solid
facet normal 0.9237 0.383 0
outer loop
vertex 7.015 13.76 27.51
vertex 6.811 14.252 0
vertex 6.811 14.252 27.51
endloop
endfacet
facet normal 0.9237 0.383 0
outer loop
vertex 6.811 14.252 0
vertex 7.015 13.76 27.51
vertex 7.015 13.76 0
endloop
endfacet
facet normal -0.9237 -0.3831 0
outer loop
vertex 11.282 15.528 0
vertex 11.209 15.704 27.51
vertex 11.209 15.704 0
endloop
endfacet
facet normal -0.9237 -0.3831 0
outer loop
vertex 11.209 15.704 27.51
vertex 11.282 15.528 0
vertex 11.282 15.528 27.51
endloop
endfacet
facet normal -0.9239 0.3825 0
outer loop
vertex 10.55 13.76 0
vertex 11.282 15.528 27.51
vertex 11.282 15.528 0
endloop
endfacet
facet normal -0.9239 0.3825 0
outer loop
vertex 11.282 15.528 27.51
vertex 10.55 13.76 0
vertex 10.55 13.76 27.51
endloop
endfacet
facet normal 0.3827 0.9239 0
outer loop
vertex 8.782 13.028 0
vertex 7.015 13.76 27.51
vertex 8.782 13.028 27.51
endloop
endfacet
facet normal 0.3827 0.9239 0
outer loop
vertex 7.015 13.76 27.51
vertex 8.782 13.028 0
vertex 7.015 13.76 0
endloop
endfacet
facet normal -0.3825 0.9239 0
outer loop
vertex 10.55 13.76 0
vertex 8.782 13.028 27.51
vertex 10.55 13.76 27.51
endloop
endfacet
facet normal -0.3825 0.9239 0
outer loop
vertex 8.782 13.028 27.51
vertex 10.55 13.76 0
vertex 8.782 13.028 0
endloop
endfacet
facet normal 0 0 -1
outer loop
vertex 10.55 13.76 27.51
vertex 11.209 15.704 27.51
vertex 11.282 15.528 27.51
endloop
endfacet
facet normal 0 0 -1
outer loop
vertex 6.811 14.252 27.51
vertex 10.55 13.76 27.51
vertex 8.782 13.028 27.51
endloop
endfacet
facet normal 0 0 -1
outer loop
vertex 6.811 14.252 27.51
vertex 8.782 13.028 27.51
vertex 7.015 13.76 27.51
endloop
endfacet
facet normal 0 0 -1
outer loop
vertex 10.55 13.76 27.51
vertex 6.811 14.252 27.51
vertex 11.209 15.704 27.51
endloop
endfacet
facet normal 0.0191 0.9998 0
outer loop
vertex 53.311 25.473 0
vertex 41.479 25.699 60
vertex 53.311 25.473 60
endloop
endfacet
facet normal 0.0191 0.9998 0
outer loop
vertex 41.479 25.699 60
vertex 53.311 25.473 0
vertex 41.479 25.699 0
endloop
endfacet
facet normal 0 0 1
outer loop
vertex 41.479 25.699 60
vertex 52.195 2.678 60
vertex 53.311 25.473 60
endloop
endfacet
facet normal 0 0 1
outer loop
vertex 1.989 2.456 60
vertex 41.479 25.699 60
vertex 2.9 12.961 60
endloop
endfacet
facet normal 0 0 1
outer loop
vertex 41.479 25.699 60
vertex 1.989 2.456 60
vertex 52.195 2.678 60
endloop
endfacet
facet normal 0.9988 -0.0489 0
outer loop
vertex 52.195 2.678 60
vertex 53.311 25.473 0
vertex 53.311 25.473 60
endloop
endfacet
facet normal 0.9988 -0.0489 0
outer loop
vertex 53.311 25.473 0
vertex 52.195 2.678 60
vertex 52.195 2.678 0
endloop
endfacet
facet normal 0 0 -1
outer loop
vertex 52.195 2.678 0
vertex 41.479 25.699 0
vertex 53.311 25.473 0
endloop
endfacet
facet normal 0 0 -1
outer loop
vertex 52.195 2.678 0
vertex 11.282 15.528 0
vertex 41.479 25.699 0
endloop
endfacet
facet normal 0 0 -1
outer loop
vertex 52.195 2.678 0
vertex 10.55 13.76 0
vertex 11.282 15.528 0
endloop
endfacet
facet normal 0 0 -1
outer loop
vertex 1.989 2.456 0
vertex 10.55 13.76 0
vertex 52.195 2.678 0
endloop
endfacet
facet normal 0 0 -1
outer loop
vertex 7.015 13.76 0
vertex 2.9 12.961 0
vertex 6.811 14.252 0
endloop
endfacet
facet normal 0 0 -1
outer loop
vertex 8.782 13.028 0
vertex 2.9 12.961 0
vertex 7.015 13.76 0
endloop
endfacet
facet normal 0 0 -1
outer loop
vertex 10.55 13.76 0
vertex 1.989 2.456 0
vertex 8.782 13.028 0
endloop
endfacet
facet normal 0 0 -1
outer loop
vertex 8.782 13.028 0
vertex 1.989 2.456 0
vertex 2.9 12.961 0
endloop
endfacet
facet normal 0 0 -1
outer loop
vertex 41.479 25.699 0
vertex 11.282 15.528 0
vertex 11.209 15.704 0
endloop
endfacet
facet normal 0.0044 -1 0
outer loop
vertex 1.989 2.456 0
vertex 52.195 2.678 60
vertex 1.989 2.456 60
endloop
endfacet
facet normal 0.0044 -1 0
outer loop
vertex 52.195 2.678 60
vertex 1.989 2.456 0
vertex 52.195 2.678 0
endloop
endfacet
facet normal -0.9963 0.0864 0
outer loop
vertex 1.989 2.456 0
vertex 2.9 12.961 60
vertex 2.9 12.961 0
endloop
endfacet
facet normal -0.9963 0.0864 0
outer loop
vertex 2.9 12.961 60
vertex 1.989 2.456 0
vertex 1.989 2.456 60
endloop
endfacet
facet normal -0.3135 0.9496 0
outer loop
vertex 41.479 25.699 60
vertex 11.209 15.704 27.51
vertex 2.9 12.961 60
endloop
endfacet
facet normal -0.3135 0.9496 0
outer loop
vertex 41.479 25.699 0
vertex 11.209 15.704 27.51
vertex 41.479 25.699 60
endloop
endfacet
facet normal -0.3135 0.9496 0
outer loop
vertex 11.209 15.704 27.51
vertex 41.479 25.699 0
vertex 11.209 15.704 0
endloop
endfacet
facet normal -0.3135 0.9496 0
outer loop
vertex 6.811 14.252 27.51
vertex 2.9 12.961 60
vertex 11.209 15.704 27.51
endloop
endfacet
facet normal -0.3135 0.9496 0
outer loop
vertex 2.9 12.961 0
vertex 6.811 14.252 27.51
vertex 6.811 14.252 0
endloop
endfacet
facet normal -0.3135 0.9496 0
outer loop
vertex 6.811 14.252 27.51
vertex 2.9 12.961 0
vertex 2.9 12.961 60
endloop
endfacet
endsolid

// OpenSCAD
/* doodle-meta {"version":1,"parameters":{"width":{"label":"Overall width","description":"Changes the body width","unit":"mm","feature":"body_width"},"depth":{"label":"Overall depth","description":"Changes the body depth","unit":"mm","feature":"body_depth"},"height":{"label":"Overall height","description":"Changes the body height","unit":"mm","feature":"body_height"},"hole_diameter":{"label":"Mounting hole diameter","description":"Diameter of the mounting holes","unit":"mm","feature":"mounting_holes"}},"features":{"body_width":{"kind":"dimension","axis":"x","label":"Overall width"},"body_depth":{"kind":"dimension","axis":"y","label":"Overall depth"},"body_height":{"kind":"dimension","axis":"z","label":"Overall height"},"mounting_holes":{"kind":"region","label":"Mounting holes","min":[{"parameter":"width","scale":0.15,"offset":0},{"parameter":"depth","scale":0.1,"offset":0},0],"max":[{"parameter":"width","scale":0.9,"offset":0},{"parameter":"depth","scale":0.9,"offset":0},{"parameter":"height","scale":1.0,"offset":0}]}}} */

// Parameters
width = 55.55;
depth = 60.0;
height = 27.5;
hole_diameter = 5.0;

// Derived parameters
eps = 0.01;
base_thickness = 5.0; // Inferred from right view height proportion

// Modules
module motor_holder_body() {
    // The body is defined by the front view (XZ plane) extruded along Y.
    // Front view polygon points (normalized u, v) -> (X, Z)
    // u maps to +X, v maps to -Z (so Z = (1-v)*height)
    
    // Points from view_3 (front):
    // [0.9597, 0.0737] -> X=0.9597*w, Z=(1-0.0737)*h
    // [0.7467, 0.0655] -> X=0.7467*w, Z=(1-0.0655)*h
    // [0.0522, 0.5287] -> X=0.0522*w, Z=(1-0.5287)*h
    // [0.0358, 0.9107] -> X=0.0358*w, Z=(1-0.9107)*h
    // [0.9396, 0.9026] -> X=0.9396*w, Z=(1-0.9026)*h
    
    // Note: The front view shows a profile that is roughly rectangular with an angled top.
    // The bottom is flat (Z=0). The left side is vertical. The right side is vertical.
    // The top slopes down from right to left? 
    // Let's re-evaluate the front view polygon.
    // It looks like a block with a slanted top surface.
    // The polygon vertices in view_3:
    // 1. (0.9597, 0.0737) -> Top Right
    // 2. (0.7467, 0.0655) -> Top Middle-Right
    // 3. (0.0522, 0.5287) -> Middle Left (Start of slope?)
    // 4. (0.0358, 0.9107) -> Bottom Left
    // 5. (0.9396, 0.9026) -> Bottom Right
    
    // This defines the X-Z profile. We extrude this along Y (depth).
    // However, the top view (view_1) shows an L-shape with a curved cutout.
    // The construction plan says "extrude L-shaped outline with curved cutout from top view".
    // But the front view defines the height profile.
    // Usually, for a motor holder, the base is flat and the top is angled.
    // Let's assume the base is a rectangular block of height 'base_thickness' and the top part is angled.
    // Or, simpler: The front view defines the silhouette. The top view defines the footprint.
    // If we extrude the front view along Y, we get a prism.
    // Then we subtract the curved cutout from the top view (which cuts along Z).
    
    // Let's construct the base prism from the front view.
    // The front view polygon is closed.
    // We need to map these to 3D coordinates.
    // The prism extends from Y=0 to Y=depth.
    
    polygon_points = [
        [0.9597 * width, (1 - 0.0737) * height],
        [0.7467 * width, (1 - 0.0655) * height],
        [0.0522 * width, (1 - 0.5287) * height],
        [0.0358 * width, (1 - 0.9107) * height],
        [0.9396 * width, (1 - 0.9026) * height]
    ];
    
    // Extrude the polygon along Y
    linear_extrude(height = depth) {
        polygon(polygon_points);
    }
}

module curved_cutout() {
    // The curved cutout is visible in the top view (view_1).
    // It is on the left side.
    // The top view shows an L-shape. The "curved cutout" is likely the inner corner of the L or a specific indentation.
    // Looking at view_1 outer profile:
    // It has a large indentation on the left.
    // The "curved cutout" feature description says "large curved indentation on the left side".
    // In the top view, the left side (low X) has a curve.
    // Let's approximate this with a cylinder subtracted from the left side.
    // The cutout seems to go through the entire height? Or just the top?
    // "Curved Cutout ... likely for motor clearance".
    // If it's for motor clearance, it might be a vertical cutout.
    // Let's assume it's a vertical cylinder cutout on the left side.
    // Center of the curve in top view:
    // The leftmost part of the outer profile is around u=0.03-0.05.
    // The curve seems to be centered around X=0, Y=depth/2?
    // Let's look at the "L-shape".
    // The top view outer profile has vertices that suggest an L.
    // Let's create a cylinder that cuts into the left side.
    // Radius estimated from the "curved" nature.
    // Let's place a cylinder at X=0, Y=depth/2 with a radius that creates the indentation.
    // From the top view, the indentation is significant.
    // Let's use a radius of 15mm.
    
    translate([0, depth/2, -eps]) {
        cylinder(h = height + 2*eps, r = 15, center = false);
    }
}

module mounting_holes() {
    // Two mounting holes.
    // From top view (view_1):
    // Hole 1 (contour_11): center (0.8259, 0.1367)
    // Hole 2 (contour_9): center (0.1581, 0.7412)
    
    // Mapping to CAD (X, Y):
    // X = u * width
    // Y = (1 - v) * depth
    
    // Hole 1:
    // X1 = 0.8259 * width
    // Y1 = (1 - 0.1367) * depth = 0.8633 * depth
    
    // Hole 2:
    // X2 = 0.1581 * width
    // Y2 = (1 - 0.7412) * depth = 0.2588 * depth
    
    // These holes go through the entire height (Z).
    
    // Hole 1
    translate([0.8259 * width, 0.8633 * depth, -eps]) {
        cylinder(h = height + 2*eps, d = hole_diameter, center = false);
    }
    
    // Hole 2
    translate([0.1581 * width, 0.2588 * depth, -eps]) {
        cylinder(h = height + 2*eps, d = hole_diameter, center = false);
    }
}

// Main Design
difference() {
    // 1. Base Body
    motor_holder_body();
    
    // 2. Subtract Curved Cutout
    curved_cutout();
    
    // 3. Subtract Mounting Holes
    mounting_holes();
}
